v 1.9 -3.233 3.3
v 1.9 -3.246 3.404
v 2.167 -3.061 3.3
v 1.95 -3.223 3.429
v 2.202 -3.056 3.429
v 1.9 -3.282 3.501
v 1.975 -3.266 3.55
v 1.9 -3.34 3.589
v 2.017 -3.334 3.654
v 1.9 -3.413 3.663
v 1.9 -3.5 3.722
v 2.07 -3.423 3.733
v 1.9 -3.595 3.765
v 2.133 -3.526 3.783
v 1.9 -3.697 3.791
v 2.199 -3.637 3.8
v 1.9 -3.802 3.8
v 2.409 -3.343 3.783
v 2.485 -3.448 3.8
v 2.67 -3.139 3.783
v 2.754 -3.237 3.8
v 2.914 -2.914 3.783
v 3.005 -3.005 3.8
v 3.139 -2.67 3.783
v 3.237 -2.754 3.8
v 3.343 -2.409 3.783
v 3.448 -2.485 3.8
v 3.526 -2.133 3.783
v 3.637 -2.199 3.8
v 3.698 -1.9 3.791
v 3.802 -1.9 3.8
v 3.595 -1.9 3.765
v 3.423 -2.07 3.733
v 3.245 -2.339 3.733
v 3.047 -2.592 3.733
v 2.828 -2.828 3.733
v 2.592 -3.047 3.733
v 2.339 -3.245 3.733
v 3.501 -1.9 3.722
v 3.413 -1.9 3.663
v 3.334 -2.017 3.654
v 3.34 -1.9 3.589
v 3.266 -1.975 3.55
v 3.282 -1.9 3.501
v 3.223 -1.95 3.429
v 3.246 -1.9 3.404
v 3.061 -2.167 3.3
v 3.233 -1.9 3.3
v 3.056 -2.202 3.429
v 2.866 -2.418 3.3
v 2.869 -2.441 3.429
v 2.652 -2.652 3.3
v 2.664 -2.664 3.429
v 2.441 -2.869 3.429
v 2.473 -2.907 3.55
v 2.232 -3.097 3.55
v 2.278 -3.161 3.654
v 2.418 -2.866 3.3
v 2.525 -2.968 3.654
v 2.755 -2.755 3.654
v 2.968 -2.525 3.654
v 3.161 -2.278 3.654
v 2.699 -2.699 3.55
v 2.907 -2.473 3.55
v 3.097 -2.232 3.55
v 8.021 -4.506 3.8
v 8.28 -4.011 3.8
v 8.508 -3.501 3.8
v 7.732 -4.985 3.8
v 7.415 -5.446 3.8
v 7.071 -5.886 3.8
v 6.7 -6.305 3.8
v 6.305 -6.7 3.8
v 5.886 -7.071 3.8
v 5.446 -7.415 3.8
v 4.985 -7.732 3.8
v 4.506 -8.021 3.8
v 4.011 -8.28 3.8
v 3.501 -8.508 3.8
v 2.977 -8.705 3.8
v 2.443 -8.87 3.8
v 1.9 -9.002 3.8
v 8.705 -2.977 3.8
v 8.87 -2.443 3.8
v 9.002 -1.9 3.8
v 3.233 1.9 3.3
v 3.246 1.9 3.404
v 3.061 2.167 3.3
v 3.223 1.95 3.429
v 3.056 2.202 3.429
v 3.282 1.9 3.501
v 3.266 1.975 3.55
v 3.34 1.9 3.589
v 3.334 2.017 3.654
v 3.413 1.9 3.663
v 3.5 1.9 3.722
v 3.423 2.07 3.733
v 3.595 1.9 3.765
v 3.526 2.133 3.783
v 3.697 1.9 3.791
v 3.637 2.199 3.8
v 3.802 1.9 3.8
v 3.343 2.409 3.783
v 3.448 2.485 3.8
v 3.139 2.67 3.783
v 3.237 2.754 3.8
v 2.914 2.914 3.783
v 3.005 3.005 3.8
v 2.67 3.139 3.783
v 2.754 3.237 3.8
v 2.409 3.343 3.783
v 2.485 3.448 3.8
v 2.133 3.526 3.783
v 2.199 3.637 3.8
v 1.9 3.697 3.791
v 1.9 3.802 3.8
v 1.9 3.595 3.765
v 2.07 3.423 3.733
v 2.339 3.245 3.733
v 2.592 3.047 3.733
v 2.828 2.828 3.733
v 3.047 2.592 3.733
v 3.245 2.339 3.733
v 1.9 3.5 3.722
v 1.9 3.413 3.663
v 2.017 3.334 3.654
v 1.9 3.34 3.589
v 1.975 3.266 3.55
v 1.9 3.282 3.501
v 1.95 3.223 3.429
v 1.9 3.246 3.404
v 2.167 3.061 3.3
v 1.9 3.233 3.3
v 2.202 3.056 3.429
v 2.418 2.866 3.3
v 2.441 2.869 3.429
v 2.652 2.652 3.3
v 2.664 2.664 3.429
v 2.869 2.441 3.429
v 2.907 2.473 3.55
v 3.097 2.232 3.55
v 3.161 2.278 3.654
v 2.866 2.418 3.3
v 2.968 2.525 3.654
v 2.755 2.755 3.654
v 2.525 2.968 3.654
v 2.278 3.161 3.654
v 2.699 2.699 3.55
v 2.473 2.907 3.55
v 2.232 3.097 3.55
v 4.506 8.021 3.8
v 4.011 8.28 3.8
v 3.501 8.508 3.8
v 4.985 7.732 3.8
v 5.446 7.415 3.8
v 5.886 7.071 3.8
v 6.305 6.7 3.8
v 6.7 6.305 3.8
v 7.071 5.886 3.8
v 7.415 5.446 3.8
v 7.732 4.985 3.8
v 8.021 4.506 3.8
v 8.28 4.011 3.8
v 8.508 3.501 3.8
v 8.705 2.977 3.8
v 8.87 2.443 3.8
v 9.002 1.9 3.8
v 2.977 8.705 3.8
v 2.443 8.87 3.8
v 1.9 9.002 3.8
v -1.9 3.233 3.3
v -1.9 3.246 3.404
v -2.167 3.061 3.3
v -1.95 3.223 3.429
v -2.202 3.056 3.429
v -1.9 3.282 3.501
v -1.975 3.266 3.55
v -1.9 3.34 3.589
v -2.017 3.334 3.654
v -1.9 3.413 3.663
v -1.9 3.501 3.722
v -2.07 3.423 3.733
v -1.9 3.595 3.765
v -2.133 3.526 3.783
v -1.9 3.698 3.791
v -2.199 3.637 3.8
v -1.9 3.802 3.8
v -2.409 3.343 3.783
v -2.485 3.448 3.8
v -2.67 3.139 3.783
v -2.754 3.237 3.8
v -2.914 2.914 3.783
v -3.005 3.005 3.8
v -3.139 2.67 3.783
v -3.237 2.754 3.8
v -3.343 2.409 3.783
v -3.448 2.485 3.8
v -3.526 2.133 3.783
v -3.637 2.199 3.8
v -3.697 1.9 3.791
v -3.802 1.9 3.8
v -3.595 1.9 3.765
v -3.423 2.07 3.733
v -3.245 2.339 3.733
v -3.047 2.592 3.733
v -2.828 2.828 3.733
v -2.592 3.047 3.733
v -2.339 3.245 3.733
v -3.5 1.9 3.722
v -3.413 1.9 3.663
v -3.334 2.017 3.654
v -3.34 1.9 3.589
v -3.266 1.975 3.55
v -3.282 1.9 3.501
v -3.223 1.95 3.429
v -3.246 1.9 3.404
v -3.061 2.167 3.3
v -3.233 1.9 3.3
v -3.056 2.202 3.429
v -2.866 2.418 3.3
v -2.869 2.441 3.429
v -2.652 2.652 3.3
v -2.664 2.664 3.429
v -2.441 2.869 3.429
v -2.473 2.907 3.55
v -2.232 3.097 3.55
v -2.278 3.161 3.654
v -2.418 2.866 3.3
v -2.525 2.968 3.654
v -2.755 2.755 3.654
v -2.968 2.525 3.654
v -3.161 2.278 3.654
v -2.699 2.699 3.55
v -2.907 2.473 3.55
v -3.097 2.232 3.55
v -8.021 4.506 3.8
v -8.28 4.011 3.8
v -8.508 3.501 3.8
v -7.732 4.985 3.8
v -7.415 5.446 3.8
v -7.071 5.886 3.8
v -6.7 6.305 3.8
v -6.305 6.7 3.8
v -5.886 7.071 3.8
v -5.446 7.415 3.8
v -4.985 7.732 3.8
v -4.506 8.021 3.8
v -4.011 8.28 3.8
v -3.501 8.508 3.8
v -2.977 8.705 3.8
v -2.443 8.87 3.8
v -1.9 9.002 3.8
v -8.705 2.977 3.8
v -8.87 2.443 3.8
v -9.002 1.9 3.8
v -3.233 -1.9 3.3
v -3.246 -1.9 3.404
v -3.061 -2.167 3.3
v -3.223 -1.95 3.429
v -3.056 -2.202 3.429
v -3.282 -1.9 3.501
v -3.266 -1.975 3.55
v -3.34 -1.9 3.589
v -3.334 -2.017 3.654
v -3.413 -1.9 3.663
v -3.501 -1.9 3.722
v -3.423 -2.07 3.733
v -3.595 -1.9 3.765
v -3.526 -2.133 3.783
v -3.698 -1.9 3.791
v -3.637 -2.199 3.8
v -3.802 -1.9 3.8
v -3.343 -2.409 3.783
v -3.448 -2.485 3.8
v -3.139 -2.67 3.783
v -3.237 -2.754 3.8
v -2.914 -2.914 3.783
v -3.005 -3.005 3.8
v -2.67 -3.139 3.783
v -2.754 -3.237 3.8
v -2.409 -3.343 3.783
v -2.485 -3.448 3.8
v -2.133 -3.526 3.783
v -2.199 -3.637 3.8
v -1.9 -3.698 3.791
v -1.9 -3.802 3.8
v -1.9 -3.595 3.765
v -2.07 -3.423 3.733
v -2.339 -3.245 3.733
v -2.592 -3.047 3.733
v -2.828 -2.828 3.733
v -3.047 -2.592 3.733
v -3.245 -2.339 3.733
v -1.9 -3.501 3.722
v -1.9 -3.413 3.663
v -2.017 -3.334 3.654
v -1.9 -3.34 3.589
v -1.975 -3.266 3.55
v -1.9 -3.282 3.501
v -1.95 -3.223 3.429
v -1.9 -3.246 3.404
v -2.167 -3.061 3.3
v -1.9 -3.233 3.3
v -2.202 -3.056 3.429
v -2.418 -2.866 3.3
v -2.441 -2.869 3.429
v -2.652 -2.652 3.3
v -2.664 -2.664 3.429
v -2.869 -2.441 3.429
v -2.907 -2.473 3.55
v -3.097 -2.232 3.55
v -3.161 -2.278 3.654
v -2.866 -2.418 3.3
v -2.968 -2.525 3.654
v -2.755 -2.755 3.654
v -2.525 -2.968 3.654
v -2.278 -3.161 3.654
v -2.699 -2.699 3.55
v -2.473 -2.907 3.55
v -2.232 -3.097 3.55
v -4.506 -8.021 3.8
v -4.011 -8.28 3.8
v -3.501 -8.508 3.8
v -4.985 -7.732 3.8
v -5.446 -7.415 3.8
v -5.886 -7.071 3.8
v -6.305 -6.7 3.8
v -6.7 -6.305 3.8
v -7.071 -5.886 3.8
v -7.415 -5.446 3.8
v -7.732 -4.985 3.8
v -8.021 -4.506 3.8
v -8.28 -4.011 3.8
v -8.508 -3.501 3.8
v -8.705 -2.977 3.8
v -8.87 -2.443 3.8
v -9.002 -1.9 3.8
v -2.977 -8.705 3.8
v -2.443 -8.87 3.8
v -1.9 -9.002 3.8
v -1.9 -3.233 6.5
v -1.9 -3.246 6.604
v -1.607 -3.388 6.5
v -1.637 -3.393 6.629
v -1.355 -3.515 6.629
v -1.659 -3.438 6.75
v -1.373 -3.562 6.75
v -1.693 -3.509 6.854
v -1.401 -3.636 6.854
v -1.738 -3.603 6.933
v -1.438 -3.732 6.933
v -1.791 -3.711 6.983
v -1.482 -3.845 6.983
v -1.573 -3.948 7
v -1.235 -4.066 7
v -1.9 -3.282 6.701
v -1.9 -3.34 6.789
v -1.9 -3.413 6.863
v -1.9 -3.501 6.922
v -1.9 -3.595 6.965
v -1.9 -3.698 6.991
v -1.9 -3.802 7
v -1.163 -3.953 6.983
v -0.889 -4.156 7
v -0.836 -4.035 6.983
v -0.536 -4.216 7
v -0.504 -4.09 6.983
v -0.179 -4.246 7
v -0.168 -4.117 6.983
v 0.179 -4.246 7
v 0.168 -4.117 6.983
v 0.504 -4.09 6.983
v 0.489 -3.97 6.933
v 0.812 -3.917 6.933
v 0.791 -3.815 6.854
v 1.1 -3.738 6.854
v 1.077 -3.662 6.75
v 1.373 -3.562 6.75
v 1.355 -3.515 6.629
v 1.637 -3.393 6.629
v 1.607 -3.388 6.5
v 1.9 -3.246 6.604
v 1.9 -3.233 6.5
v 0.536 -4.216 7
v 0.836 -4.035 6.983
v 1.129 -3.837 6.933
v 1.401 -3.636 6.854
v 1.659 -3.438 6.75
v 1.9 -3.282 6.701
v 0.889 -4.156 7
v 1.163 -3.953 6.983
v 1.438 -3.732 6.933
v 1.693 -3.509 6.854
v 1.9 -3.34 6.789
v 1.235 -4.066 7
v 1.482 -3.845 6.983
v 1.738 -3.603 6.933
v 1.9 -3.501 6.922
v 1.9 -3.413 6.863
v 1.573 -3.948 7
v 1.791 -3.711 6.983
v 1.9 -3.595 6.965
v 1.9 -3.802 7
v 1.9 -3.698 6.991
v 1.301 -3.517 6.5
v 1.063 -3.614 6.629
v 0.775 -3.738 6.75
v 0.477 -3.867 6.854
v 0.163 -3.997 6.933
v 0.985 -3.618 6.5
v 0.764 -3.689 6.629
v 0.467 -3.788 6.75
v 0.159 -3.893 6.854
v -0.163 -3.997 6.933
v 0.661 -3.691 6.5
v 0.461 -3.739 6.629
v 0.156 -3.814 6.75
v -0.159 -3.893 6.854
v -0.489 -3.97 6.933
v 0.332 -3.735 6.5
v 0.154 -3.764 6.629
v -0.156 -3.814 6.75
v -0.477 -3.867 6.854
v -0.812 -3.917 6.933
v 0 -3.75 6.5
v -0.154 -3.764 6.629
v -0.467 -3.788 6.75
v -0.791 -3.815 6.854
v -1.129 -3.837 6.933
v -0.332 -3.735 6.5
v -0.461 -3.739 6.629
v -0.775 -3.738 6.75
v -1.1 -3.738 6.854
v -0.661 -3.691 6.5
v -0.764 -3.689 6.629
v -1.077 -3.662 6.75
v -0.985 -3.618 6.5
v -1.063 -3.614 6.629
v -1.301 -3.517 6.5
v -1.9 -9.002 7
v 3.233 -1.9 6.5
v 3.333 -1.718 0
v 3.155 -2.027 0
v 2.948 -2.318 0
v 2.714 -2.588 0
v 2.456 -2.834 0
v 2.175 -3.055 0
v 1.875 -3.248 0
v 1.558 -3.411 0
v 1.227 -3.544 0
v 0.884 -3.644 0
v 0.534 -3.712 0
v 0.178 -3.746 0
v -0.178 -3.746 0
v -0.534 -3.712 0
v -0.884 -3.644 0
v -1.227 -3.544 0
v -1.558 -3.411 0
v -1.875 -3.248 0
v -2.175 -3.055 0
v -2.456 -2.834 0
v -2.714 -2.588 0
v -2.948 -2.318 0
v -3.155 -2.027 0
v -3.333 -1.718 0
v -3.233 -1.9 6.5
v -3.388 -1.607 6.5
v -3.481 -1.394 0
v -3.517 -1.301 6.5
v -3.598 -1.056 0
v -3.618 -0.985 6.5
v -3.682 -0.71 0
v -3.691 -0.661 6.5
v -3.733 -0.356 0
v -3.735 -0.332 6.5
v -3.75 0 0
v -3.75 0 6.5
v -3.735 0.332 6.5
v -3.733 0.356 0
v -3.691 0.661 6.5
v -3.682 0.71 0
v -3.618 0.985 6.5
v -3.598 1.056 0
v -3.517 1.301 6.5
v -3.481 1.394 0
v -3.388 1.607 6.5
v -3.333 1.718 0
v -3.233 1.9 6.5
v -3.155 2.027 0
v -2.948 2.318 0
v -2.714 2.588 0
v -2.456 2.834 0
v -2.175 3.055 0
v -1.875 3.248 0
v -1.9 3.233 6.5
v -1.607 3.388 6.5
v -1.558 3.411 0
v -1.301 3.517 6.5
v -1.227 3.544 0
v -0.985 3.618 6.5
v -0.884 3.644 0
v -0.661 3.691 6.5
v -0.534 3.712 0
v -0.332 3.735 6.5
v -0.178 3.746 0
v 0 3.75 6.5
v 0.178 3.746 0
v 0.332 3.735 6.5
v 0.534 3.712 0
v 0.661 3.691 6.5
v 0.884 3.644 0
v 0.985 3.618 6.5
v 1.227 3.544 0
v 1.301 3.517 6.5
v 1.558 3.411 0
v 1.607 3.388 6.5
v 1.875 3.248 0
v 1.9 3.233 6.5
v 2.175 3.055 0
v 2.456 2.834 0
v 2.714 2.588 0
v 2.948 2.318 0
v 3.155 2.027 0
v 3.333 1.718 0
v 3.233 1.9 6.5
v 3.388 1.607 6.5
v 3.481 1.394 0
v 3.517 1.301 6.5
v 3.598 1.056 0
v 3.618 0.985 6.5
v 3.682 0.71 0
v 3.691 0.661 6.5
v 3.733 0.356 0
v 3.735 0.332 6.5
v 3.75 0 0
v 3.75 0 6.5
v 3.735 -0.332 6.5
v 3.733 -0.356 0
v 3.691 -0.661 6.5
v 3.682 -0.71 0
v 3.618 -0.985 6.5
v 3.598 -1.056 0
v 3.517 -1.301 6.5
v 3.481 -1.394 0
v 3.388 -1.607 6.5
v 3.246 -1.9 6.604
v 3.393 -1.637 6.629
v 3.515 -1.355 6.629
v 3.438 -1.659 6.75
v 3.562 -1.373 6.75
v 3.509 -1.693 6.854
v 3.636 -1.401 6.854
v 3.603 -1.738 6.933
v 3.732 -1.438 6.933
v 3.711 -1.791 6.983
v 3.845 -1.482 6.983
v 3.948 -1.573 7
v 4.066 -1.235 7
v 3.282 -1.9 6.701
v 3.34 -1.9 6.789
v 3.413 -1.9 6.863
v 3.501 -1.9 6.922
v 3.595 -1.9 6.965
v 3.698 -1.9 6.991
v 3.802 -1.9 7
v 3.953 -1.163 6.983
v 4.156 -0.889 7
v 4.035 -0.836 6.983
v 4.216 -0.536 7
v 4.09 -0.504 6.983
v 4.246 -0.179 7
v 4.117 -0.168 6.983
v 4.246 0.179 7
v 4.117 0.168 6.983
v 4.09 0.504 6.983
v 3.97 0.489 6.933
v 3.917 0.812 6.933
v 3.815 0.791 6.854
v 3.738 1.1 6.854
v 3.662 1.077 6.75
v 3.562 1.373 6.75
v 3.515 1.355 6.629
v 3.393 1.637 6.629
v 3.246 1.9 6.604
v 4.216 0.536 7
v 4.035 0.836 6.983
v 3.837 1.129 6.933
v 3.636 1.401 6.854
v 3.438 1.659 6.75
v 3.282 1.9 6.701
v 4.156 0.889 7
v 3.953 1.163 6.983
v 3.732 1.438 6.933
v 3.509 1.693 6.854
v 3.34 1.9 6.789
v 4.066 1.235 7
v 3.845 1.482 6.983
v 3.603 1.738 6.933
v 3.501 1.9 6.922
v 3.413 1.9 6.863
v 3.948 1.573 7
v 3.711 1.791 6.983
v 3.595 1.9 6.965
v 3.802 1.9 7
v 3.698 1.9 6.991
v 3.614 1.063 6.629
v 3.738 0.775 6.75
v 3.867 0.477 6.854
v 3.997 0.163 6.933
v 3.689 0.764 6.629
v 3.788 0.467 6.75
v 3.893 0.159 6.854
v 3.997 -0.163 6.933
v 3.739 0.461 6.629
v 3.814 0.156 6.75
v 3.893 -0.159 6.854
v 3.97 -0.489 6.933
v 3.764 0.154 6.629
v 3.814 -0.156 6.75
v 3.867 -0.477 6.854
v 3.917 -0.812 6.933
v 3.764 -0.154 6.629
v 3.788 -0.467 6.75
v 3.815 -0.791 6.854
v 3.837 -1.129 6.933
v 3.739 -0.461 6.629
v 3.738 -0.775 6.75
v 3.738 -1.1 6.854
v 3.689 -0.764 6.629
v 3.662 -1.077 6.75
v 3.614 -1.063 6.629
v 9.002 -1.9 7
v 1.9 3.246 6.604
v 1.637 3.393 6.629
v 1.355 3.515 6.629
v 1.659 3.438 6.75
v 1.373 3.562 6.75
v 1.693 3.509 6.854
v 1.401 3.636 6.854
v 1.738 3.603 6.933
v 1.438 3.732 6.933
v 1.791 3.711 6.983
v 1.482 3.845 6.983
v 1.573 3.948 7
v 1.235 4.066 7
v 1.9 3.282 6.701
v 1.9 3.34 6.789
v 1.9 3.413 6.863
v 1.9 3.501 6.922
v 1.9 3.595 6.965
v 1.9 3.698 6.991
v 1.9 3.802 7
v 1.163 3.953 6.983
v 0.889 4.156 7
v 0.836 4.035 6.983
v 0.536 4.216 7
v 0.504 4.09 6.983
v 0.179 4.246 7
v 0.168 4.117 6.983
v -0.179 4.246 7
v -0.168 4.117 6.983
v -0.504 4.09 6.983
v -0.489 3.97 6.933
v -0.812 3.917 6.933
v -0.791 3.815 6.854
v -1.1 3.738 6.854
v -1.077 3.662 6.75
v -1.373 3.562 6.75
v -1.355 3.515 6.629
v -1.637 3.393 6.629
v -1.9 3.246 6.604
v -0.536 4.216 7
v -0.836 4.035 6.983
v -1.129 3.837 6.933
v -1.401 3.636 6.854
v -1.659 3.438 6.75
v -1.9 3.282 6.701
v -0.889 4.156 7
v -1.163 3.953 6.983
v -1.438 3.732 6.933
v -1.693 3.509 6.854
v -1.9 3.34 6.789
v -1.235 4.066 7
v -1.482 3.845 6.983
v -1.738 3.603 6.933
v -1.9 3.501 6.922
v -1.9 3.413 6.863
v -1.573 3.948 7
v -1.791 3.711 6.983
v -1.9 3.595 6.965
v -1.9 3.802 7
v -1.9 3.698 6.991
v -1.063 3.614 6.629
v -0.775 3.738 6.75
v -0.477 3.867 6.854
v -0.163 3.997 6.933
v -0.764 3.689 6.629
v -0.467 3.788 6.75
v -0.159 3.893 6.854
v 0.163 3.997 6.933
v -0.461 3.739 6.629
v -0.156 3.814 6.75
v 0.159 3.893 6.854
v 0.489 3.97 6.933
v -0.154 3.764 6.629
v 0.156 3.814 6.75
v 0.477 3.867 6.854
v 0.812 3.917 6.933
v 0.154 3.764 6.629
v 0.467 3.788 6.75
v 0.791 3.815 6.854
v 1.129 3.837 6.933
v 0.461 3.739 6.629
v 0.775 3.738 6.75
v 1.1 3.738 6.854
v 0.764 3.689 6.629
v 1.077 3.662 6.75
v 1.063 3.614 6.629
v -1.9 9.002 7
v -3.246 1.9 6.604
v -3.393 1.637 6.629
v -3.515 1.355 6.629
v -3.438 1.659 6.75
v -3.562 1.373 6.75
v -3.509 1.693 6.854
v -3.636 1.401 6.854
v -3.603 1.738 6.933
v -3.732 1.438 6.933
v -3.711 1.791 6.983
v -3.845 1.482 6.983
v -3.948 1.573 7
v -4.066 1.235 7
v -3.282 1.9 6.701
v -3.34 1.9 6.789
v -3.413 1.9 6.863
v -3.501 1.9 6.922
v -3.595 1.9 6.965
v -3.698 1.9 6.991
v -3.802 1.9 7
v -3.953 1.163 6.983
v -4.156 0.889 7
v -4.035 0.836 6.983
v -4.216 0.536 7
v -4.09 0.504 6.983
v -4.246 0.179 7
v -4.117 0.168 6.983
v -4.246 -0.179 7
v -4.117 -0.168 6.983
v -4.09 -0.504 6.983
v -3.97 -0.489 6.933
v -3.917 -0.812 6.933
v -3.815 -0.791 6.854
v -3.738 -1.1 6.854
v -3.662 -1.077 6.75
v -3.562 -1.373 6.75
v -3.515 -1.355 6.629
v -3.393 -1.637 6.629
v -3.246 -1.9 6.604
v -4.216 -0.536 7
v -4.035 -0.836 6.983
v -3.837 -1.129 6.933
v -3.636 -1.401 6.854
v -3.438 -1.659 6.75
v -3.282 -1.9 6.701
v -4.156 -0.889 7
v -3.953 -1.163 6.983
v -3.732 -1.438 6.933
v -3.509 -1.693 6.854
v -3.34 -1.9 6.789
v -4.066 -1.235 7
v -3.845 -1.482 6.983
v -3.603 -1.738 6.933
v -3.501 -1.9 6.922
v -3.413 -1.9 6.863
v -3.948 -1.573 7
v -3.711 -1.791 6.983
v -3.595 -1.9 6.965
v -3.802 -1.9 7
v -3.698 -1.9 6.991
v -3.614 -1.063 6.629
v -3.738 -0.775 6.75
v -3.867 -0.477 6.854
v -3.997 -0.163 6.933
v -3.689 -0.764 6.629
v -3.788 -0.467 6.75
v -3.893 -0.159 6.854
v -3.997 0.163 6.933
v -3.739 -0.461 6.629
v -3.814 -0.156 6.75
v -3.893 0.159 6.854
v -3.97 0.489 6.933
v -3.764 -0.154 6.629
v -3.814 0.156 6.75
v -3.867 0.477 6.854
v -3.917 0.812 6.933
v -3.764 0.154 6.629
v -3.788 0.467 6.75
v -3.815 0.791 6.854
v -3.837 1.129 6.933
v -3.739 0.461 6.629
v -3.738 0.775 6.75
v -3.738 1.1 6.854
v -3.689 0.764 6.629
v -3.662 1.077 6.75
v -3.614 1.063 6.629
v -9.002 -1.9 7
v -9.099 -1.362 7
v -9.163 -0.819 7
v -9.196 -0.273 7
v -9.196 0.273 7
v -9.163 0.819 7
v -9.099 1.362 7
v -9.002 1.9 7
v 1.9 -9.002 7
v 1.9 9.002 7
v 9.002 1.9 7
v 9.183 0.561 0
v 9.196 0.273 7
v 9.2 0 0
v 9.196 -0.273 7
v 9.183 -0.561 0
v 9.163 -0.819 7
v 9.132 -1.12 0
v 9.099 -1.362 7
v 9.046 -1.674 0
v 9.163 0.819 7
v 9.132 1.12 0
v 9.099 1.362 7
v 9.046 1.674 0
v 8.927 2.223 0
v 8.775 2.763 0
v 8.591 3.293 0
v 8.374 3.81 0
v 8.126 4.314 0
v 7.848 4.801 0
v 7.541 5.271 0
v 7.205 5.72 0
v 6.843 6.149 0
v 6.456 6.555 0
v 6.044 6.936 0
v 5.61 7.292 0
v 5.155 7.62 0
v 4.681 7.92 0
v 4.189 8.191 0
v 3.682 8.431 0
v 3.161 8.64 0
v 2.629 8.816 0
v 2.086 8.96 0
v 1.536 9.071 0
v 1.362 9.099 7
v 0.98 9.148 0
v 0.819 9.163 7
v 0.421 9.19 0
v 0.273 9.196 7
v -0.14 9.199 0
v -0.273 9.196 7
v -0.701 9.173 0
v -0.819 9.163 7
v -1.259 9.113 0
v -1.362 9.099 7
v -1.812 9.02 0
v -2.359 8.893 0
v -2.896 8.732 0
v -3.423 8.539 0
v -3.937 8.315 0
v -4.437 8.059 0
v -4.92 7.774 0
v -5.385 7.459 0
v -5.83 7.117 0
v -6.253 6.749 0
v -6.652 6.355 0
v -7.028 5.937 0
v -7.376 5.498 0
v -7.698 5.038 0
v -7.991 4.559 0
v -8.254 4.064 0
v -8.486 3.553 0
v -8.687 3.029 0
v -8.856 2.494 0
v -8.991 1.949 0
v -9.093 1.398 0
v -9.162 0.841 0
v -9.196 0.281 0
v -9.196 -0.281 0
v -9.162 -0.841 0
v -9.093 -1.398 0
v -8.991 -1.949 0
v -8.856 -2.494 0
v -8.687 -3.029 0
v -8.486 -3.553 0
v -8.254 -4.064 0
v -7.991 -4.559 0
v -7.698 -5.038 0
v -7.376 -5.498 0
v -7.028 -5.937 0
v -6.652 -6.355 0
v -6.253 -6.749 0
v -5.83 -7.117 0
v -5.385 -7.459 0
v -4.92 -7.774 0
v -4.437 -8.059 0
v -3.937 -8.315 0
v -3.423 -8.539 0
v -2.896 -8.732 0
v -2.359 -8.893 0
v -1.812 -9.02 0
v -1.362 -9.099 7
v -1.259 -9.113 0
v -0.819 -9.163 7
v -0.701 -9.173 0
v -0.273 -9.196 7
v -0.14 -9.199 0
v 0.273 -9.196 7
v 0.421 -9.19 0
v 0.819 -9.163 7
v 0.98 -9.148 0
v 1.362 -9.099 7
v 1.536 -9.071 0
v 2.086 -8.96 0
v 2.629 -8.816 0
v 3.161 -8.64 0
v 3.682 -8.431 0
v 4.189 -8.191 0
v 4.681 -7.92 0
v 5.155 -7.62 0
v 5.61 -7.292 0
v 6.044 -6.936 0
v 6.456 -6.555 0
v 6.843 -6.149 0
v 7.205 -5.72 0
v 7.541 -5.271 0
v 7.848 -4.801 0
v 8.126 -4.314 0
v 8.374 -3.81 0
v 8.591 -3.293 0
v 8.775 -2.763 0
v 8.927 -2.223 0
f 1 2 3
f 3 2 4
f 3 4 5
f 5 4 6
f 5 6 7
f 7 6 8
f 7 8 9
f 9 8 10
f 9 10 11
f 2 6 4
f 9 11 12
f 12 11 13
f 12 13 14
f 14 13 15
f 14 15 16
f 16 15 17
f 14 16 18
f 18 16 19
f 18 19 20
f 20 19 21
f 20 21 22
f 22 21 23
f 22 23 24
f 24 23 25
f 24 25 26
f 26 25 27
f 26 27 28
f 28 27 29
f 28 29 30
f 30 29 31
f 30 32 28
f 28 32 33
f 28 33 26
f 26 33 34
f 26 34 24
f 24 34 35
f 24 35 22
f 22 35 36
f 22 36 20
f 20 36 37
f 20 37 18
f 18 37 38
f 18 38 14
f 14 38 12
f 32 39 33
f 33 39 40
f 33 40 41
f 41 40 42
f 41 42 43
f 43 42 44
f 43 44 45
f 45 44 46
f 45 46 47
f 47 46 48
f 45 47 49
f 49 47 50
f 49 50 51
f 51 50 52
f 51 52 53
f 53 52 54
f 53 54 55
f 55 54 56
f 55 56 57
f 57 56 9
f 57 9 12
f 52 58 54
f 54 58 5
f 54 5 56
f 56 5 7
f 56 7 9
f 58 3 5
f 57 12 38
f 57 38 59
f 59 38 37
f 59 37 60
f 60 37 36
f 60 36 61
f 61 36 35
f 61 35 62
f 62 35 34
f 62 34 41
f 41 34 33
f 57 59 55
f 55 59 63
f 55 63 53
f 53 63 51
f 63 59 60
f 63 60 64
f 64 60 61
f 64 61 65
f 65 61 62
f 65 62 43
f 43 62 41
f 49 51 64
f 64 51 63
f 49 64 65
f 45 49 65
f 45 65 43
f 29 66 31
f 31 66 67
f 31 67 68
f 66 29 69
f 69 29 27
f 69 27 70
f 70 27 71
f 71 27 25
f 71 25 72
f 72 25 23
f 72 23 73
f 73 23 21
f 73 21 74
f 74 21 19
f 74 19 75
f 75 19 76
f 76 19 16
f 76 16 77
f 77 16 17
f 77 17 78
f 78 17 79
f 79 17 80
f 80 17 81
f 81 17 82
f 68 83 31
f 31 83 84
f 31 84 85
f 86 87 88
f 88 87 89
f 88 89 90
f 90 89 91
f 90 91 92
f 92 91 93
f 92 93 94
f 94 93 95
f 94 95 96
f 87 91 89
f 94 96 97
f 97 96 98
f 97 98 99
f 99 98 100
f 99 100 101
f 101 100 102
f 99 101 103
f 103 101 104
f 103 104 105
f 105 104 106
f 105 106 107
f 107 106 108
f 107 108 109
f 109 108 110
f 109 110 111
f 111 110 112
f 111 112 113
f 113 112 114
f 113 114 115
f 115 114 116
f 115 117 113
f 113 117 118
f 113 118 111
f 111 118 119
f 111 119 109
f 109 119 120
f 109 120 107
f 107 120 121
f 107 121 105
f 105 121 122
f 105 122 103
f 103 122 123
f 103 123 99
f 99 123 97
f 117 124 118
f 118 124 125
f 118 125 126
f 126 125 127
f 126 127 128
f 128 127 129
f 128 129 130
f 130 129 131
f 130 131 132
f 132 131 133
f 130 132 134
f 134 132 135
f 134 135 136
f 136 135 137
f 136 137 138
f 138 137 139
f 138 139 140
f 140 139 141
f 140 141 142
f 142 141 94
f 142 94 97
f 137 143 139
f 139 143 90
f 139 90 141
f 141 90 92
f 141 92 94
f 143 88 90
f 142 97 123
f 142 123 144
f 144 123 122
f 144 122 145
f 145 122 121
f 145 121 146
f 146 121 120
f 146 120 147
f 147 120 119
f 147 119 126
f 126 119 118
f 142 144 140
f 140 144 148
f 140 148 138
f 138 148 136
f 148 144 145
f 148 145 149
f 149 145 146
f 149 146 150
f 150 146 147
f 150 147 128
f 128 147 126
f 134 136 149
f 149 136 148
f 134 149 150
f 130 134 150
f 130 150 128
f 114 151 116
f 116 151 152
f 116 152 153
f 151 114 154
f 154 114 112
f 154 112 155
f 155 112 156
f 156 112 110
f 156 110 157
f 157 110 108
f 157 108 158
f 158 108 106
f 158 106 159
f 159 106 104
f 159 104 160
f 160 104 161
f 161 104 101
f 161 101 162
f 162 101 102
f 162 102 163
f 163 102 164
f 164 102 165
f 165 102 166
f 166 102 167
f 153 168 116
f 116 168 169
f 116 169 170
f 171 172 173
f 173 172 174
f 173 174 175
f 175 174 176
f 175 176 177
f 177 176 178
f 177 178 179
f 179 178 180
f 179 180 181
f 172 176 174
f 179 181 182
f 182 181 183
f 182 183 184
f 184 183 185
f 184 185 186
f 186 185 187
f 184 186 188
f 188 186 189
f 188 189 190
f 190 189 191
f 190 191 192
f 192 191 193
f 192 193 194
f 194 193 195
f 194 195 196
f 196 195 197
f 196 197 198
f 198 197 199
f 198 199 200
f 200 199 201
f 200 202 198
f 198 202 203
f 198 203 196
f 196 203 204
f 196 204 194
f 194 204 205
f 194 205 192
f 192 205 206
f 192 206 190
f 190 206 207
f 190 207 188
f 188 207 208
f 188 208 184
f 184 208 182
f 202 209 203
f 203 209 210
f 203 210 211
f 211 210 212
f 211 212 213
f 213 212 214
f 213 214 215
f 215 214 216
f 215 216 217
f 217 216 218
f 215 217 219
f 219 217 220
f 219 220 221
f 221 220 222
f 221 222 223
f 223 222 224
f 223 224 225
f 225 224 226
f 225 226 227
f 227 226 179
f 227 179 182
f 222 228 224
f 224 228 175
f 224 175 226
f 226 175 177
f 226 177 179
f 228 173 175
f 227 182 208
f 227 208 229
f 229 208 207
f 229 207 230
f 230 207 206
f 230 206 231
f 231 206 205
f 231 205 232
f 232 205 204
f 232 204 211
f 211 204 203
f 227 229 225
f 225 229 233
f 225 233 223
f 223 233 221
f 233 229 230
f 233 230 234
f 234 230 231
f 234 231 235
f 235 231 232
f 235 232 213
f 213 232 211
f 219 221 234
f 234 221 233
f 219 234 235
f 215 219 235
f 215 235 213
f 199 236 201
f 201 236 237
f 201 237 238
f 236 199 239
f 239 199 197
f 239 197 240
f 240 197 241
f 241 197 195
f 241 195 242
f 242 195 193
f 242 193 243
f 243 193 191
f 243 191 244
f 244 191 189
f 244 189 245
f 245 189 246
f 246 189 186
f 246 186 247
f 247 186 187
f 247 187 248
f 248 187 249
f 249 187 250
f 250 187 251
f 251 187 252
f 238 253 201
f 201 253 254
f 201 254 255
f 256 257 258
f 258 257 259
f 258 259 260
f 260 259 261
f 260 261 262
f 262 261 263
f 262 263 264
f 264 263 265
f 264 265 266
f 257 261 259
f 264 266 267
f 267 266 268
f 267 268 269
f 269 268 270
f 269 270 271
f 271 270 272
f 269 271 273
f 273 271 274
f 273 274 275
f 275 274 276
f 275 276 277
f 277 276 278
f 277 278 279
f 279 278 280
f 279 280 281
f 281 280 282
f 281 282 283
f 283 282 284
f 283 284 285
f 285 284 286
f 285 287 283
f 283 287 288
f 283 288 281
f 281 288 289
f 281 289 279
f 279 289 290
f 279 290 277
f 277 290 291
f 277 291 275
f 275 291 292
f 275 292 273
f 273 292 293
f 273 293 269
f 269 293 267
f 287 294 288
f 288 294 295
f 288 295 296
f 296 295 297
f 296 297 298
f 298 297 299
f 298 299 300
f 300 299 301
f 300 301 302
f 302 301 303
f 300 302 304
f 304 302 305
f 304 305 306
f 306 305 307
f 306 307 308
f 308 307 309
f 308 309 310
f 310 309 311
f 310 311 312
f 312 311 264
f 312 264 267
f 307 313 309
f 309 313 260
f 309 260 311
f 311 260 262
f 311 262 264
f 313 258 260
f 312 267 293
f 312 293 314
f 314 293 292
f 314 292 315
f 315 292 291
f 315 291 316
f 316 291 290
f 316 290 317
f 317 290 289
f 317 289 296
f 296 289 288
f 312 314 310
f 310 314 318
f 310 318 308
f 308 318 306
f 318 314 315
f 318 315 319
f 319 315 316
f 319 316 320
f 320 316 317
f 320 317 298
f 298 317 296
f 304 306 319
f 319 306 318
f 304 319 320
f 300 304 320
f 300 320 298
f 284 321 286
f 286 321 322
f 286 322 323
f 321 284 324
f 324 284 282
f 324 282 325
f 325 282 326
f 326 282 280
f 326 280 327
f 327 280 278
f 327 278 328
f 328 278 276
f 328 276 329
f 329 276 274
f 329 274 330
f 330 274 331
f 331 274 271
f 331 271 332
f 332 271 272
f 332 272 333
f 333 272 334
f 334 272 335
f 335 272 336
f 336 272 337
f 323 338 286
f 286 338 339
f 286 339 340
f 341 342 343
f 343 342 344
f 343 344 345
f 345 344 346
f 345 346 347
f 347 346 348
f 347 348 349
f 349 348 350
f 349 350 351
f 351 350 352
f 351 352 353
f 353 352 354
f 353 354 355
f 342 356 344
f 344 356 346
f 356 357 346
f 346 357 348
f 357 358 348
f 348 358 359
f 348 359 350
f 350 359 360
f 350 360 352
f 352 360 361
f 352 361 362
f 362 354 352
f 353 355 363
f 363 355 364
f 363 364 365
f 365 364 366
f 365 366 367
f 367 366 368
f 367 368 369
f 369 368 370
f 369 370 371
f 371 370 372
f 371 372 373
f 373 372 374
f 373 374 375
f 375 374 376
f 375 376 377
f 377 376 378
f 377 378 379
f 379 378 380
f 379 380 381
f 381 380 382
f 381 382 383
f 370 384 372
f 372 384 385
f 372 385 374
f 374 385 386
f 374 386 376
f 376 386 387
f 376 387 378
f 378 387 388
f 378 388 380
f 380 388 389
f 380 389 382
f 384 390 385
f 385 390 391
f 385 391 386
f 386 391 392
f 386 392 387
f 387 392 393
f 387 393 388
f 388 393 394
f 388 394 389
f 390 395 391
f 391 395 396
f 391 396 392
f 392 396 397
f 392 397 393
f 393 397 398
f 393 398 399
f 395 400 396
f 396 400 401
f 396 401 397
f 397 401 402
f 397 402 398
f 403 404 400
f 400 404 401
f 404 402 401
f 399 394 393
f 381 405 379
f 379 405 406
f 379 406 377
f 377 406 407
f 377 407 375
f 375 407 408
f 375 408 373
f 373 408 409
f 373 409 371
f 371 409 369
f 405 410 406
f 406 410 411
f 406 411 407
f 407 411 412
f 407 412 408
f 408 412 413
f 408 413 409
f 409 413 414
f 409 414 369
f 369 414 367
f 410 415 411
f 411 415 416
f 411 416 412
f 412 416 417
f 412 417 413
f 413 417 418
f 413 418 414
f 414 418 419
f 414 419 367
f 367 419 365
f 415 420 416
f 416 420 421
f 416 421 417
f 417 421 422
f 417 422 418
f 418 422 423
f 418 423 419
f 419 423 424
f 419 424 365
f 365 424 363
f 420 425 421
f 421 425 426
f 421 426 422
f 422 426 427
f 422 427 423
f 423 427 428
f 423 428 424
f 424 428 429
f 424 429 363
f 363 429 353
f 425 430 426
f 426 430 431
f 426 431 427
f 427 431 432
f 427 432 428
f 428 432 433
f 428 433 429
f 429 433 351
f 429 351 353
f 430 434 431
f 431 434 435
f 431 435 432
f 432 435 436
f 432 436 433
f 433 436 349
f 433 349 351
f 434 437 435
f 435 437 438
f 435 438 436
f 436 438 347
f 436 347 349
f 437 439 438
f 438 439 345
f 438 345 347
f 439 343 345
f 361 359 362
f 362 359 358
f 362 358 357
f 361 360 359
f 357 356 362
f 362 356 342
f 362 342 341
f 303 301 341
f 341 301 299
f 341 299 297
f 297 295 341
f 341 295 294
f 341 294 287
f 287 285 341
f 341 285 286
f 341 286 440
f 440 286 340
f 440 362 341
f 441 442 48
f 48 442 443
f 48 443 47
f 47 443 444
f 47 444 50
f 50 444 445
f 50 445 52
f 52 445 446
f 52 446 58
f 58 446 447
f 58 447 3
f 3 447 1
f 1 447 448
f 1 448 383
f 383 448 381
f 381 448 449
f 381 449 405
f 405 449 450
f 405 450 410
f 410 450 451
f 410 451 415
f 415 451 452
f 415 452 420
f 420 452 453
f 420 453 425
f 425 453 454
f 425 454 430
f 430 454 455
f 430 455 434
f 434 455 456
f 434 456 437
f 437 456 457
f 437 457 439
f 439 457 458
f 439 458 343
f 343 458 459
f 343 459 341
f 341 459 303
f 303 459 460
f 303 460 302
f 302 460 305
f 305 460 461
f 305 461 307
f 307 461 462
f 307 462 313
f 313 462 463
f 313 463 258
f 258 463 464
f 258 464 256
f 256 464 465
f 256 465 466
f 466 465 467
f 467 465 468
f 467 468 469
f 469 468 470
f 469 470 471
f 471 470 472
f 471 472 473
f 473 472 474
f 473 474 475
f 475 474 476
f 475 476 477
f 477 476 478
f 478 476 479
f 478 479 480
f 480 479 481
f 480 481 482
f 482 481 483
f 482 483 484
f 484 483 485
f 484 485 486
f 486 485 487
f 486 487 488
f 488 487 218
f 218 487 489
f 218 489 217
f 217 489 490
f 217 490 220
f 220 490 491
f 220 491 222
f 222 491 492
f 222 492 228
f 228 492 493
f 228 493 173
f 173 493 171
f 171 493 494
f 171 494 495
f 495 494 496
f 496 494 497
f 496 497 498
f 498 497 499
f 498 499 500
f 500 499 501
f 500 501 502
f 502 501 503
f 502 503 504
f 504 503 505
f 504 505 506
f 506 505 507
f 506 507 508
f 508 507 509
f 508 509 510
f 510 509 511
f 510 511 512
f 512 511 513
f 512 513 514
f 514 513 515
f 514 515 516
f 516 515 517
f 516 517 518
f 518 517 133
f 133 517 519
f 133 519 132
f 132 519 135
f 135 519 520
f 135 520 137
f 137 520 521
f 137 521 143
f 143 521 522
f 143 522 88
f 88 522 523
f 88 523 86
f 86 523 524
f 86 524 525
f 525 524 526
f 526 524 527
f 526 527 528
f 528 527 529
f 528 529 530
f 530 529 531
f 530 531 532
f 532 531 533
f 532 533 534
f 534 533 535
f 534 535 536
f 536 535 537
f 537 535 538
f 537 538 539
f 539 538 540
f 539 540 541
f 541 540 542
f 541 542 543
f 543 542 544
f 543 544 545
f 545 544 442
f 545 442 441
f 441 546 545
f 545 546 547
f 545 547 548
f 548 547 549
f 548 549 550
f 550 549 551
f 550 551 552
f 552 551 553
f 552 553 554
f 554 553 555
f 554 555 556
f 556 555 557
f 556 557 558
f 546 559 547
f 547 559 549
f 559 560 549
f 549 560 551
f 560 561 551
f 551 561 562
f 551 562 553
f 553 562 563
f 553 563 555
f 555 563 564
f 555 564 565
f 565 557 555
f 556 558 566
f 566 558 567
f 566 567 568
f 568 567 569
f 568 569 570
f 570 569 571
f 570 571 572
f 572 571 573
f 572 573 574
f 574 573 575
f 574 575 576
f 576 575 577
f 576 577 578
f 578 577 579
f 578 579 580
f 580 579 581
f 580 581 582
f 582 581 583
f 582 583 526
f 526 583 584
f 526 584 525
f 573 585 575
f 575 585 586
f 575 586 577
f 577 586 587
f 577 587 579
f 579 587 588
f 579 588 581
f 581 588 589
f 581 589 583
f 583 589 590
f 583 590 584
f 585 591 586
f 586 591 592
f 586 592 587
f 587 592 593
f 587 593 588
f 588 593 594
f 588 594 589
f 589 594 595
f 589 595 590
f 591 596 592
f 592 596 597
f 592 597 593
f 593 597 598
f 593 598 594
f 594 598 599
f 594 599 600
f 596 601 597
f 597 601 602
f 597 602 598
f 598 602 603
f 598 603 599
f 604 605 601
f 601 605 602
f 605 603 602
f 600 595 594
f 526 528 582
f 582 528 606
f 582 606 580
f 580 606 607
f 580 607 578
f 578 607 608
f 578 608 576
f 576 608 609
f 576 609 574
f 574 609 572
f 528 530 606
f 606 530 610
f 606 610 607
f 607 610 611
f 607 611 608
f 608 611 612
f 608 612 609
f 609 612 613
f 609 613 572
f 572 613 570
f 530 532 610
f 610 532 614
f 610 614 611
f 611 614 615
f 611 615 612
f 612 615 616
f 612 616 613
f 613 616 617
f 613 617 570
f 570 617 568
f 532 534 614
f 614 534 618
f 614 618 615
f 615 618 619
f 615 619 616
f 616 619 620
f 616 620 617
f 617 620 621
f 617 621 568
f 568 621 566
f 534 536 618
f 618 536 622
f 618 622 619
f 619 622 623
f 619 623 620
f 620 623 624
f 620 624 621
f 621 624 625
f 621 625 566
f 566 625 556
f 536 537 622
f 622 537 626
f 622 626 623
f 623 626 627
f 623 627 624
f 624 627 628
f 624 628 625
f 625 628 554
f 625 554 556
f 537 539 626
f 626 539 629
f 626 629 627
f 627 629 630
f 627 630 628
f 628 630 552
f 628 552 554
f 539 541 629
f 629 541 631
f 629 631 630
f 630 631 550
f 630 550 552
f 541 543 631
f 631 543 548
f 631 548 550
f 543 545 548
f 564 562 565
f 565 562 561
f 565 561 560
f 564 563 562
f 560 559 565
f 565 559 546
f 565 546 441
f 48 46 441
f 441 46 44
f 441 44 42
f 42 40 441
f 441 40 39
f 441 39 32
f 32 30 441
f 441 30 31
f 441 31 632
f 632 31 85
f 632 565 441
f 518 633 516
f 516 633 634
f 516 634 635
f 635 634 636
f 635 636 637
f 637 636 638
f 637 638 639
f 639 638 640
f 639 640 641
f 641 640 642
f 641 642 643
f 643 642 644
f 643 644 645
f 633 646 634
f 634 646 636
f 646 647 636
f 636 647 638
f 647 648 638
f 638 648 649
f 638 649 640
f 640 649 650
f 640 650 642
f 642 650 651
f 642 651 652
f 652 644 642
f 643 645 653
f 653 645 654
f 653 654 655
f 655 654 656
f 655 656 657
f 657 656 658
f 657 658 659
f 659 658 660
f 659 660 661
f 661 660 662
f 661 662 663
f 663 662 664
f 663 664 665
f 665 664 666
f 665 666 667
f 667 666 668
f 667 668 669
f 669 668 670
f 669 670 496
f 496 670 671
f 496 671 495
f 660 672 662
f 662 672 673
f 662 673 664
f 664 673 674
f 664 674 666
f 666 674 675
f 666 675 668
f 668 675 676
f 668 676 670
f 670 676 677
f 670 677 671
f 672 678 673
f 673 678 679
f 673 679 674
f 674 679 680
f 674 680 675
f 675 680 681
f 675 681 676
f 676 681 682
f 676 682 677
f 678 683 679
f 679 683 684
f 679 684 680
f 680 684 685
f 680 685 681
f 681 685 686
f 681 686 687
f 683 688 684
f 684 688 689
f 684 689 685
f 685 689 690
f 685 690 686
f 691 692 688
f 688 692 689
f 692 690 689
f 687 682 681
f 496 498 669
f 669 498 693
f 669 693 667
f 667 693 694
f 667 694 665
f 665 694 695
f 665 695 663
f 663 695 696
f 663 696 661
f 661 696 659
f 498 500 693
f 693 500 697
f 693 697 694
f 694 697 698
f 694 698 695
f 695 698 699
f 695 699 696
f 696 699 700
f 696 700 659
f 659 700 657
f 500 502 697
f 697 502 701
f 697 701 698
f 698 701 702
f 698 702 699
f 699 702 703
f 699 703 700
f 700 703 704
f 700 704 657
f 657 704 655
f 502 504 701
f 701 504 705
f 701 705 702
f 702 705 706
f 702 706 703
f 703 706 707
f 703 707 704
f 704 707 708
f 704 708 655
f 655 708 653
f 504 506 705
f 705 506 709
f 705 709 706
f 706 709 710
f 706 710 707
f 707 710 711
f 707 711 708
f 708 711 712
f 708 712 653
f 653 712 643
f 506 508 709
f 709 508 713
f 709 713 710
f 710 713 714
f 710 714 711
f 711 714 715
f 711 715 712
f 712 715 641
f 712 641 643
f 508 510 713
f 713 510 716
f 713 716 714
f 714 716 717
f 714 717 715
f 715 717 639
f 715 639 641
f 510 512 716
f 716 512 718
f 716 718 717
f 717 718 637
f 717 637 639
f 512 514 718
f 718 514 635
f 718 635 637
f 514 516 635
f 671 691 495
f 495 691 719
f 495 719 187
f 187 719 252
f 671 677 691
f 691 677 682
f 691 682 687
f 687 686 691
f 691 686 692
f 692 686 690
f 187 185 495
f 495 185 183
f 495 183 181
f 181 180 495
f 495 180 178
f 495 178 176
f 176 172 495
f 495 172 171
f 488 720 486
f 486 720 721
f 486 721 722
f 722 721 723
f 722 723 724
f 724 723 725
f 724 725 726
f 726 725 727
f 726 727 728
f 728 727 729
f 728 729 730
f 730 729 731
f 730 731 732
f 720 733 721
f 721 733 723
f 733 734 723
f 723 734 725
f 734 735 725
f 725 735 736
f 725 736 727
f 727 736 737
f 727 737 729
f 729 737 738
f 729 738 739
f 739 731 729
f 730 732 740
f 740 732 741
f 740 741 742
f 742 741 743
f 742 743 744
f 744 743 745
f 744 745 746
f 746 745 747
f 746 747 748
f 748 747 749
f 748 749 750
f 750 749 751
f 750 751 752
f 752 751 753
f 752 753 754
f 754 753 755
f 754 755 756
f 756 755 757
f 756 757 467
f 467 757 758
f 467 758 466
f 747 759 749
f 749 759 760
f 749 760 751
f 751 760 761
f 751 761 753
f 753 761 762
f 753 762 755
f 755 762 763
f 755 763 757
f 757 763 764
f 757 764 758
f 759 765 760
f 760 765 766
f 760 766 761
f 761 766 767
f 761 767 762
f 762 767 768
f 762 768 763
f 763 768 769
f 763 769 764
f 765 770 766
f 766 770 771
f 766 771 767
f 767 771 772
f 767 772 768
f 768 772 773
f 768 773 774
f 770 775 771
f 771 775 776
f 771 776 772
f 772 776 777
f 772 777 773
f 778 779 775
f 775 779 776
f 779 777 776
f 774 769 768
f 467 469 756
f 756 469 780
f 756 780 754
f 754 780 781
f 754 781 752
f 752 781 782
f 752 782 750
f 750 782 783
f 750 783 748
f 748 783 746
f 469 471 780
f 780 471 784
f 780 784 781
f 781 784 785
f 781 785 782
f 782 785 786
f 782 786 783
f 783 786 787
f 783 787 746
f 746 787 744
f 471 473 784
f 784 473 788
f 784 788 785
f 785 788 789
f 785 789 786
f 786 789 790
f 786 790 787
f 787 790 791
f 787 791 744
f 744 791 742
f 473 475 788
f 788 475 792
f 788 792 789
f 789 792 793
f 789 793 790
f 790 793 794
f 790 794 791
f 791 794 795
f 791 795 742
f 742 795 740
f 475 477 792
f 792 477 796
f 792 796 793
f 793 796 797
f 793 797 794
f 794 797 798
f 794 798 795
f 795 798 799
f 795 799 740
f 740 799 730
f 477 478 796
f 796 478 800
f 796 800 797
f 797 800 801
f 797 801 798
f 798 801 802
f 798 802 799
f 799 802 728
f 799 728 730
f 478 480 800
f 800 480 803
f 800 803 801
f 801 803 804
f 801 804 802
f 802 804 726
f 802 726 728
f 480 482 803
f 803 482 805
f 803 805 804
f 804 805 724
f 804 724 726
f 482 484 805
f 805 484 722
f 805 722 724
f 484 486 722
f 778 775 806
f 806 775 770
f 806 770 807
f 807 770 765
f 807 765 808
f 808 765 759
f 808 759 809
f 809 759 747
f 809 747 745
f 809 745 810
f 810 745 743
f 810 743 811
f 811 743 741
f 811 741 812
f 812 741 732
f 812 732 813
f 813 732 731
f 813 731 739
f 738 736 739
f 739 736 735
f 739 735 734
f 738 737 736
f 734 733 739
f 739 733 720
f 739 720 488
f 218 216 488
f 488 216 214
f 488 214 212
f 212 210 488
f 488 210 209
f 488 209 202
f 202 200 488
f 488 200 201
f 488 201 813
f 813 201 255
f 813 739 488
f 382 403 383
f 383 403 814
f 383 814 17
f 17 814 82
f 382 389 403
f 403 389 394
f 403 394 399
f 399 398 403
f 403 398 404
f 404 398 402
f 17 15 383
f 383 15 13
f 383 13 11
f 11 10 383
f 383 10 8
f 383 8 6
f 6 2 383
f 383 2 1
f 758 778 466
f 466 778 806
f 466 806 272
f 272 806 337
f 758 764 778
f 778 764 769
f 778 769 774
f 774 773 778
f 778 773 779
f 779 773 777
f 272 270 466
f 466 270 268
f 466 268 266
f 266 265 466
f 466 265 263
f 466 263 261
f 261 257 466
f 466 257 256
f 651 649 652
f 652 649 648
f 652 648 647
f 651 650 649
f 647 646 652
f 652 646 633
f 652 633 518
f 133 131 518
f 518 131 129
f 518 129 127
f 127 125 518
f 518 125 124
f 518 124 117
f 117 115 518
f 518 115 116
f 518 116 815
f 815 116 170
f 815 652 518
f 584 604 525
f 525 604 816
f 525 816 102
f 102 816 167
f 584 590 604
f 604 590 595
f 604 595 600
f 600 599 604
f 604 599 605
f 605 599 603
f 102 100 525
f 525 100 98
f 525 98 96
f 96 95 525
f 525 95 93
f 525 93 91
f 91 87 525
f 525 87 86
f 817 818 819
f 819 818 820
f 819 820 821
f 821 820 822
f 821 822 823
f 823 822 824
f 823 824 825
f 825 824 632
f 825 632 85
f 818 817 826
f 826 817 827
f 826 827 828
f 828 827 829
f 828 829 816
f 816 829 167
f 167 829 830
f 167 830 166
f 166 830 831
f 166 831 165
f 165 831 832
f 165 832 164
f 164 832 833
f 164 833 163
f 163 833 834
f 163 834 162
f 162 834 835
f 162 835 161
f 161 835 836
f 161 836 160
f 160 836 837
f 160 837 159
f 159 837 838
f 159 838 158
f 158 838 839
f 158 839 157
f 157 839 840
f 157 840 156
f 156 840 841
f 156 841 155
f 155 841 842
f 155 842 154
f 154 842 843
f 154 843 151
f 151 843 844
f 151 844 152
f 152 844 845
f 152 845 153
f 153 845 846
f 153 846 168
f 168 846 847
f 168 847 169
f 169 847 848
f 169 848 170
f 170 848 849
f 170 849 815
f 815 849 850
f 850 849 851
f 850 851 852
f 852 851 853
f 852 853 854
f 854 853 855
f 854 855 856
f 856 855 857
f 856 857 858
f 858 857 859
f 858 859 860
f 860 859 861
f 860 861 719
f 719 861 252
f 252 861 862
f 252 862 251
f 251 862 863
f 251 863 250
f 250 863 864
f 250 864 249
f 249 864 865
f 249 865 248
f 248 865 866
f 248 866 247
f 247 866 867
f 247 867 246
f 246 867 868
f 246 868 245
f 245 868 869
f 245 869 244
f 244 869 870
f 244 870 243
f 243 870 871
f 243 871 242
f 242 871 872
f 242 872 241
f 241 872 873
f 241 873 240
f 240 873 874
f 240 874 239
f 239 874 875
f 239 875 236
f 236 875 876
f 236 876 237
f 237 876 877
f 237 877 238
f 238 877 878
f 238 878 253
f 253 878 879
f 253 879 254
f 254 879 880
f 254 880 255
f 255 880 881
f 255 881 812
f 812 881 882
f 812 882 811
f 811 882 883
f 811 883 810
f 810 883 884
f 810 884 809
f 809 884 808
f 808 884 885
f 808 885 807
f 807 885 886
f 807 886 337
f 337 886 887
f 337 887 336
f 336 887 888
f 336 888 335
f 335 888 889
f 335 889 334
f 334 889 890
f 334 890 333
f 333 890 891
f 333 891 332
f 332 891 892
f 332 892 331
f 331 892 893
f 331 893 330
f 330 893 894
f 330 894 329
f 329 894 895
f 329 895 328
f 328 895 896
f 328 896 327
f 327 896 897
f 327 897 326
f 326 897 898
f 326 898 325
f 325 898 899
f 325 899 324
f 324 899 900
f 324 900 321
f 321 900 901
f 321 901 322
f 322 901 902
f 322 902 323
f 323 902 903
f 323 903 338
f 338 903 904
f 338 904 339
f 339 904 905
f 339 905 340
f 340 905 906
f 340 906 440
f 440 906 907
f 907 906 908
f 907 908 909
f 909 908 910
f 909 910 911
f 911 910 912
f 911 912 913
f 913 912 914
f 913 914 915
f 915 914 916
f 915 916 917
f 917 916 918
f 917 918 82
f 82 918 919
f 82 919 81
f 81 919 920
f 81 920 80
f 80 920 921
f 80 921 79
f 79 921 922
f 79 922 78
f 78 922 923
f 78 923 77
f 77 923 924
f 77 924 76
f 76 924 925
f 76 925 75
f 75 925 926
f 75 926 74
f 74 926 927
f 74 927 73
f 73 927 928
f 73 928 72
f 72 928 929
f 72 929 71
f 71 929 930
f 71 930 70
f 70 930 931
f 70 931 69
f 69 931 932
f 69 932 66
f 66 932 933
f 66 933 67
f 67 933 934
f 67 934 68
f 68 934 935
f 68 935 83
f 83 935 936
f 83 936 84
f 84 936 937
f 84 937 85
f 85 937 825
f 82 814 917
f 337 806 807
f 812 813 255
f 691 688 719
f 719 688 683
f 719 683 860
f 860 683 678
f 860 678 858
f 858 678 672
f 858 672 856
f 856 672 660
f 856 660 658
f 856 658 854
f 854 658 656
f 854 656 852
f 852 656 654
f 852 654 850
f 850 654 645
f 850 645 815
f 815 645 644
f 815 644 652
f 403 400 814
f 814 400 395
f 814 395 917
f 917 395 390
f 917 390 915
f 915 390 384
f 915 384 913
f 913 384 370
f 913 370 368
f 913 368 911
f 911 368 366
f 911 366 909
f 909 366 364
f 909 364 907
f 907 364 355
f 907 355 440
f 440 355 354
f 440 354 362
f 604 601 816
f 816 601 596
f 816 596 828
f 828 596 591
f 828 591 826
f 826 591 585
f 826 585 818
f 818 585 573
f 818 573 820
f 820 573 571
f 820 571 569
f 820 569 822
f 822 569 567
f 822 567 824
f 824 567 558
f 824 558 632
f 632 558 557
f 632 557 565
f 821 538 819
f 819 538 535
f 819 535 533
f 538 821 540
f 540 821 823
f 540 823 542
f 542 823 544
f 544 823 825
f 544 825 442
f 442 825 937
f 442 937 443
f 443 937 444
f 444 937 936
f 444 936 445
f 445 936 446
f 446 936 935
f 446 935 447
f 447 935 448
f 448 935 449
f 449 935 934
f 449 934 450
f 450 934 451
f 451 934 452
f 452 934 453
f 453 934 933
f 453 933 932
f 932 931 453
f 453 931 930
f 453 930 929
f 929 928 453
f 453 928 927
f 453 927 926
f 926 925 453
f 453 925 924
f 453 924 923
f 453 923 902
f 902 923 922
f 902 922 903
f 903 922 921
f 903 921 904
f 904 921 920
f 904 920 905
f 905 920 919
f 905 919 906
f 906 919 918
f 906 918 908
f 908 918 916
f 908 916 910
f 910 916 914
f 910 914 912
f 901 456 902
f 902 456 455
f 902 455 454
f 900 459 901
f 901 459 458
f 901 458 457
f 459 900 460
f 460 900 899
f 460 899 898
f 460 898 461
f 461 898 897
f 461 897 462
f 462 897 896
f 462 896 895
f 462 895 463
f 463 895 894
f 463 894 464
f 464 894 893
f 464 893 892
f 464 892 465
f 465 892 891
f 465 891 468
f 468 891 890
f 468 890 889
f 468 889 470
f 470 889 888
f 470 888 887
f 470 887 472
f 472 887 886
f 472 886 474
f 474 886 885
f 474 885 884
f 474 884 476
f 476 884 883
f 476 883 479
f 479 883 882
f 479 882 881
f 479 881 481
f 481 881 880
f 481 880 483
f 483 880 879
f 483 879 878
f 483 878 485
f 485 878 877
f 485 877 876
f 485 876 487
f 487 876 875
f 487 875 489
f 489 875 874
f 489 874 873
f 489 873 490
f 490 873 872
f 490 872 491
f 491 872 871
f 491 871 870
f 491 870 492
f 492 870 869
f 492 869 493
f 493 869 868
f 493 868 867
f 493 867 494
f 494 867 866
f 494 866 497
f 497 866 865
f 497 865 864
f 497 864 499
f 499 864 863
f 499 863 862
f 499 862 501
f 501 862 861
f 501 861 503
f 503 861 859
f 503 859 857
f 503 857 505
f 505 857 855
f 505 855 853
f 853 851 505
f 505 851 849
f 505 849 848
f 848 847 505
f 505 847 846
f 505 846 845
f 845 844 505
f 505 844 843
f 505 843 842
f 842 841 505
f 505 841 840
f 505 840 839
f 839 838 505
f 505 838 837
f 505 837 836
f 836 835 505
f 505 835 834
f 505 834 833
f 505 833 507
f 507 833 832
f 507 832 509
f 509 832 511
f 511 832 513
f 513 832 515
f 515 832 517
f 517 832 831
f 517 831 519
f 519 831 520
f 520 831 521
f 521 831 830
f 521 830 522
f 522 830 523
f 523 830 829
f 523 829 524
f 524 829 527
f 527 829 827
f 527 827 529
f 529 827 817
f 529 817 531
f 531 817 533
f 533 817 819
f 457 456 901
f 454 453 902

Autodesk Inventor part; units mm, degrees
ref_plane "YZ Plane" through (0, 0, 0) normal (1, 0, 0) x (0, 1, 0)
ref_plane "XZ Plane" through (0, 0, 0) normal (0, 1, 0) x (-1, 0, 0)
ref_plane "XY Plane" through (0, 0, 0) normal (0, 0, 1) x (1, 0, 0)
sketch "Esboço1" plane through (0, 0, 0) normal (0, 0, 1) x (1, 0, 0)
  circle A0 centre (0, 0) radius 3.75
  circle A1 centre (0, 0) radius 7.2
  circle A2 centre (0, 0) radius 9.2
  dimension "d0" = 7.5
  dimension "d2" = 14.4
  dimension "d3" = 18.4
extrude "Extrusão1" add sketch "Esboço1" along normal blind 7 contours A1 | A2
sketch "Esboço2" plane through (0, 0, 7) normal (0, 0, 1) x (1, 0, 0)
  circle A0 centre (0, 0) radius 9.2 projected
  line L0 (-9.2, 1.9) -> (-9.2, -1.9)
  line L1 (-1.9, 9.2) -> (1.9, 9.2)
  line L2 (9.2, 1.9) -> (9.2, -1.9)
  line L3 (-1.9, -9.2) -> (1.9, -9.2)
  line L4 (-1.9, 9.2) -> (-1.9, 3.1165)
  line L5 (-1.9, -3.1165) -> (-1.9, -9.2)
  line L6 (1.9, 9.2) -> (1.9, 3.1165)
  line L7 (1.9, -3.1165) -> (1.9, -9.2)
  line L8 (-9.2, -1.9) -> (-3.1165, -1.9)
  line L9 (3.1165, -1.9) -> (9.2, -1.9)
  line L10 (-9.2, 1.9) -> (-3.1165, 1.9)
  line L11 (3.1165, 1.9) -> (9.2, 1.9)
  arc A1 (-3.1165, -1.9) -> (-1.9, -3.1165) centre (0, 0) ccw
  arc A2 (1.9, -3.1165) -> (3.1165, -1.9) centre (0, 0) ccw
  arc A3 (3.1165, 1.9) -> (1.9, 3.1165) centre (0, 0) ccw
  arc A4 (-1.9, 3.1165) -> (-3.1165, 1.9) centre (0, 0) ccw
  point P0 (9.0017, 1.9)
  point P1 (1.9, 9.0017)
  point P2 (1.9, -9.0017)
  point P3 (9.0017, -1.9)
  point P4 (-9.0017, -1.9)
  point P5 (-1.9, -9.0017)
  point P6 (-1.9, 9.0017)
  point P7 (-9.0017, 1.9)
extrude "Extrusão2" cut sketch "Esboço2" against normal blind 3.2 contours L11 A3 L6 A0 | A0 L7 A2 L9 | L4 A4 L10 A0 | A0 L8 A1 L5
fillet "Arredondamento1" radius 0.5 9 edges at (-3.75, 0, 7) (0, 3.75, 7) (3.6185, -0.9845, 7) (3.6185, 0.9845, 7) (0, -3.75, 7) (-2.6517, -2.6517, 3.8) (-2.6517, 2.6517, 3.8) (2.6517, 2.6517, 3.8) (2.6517, -2.6517, 3.8)
properties part number "trava_botao_topo_3DPrint"
